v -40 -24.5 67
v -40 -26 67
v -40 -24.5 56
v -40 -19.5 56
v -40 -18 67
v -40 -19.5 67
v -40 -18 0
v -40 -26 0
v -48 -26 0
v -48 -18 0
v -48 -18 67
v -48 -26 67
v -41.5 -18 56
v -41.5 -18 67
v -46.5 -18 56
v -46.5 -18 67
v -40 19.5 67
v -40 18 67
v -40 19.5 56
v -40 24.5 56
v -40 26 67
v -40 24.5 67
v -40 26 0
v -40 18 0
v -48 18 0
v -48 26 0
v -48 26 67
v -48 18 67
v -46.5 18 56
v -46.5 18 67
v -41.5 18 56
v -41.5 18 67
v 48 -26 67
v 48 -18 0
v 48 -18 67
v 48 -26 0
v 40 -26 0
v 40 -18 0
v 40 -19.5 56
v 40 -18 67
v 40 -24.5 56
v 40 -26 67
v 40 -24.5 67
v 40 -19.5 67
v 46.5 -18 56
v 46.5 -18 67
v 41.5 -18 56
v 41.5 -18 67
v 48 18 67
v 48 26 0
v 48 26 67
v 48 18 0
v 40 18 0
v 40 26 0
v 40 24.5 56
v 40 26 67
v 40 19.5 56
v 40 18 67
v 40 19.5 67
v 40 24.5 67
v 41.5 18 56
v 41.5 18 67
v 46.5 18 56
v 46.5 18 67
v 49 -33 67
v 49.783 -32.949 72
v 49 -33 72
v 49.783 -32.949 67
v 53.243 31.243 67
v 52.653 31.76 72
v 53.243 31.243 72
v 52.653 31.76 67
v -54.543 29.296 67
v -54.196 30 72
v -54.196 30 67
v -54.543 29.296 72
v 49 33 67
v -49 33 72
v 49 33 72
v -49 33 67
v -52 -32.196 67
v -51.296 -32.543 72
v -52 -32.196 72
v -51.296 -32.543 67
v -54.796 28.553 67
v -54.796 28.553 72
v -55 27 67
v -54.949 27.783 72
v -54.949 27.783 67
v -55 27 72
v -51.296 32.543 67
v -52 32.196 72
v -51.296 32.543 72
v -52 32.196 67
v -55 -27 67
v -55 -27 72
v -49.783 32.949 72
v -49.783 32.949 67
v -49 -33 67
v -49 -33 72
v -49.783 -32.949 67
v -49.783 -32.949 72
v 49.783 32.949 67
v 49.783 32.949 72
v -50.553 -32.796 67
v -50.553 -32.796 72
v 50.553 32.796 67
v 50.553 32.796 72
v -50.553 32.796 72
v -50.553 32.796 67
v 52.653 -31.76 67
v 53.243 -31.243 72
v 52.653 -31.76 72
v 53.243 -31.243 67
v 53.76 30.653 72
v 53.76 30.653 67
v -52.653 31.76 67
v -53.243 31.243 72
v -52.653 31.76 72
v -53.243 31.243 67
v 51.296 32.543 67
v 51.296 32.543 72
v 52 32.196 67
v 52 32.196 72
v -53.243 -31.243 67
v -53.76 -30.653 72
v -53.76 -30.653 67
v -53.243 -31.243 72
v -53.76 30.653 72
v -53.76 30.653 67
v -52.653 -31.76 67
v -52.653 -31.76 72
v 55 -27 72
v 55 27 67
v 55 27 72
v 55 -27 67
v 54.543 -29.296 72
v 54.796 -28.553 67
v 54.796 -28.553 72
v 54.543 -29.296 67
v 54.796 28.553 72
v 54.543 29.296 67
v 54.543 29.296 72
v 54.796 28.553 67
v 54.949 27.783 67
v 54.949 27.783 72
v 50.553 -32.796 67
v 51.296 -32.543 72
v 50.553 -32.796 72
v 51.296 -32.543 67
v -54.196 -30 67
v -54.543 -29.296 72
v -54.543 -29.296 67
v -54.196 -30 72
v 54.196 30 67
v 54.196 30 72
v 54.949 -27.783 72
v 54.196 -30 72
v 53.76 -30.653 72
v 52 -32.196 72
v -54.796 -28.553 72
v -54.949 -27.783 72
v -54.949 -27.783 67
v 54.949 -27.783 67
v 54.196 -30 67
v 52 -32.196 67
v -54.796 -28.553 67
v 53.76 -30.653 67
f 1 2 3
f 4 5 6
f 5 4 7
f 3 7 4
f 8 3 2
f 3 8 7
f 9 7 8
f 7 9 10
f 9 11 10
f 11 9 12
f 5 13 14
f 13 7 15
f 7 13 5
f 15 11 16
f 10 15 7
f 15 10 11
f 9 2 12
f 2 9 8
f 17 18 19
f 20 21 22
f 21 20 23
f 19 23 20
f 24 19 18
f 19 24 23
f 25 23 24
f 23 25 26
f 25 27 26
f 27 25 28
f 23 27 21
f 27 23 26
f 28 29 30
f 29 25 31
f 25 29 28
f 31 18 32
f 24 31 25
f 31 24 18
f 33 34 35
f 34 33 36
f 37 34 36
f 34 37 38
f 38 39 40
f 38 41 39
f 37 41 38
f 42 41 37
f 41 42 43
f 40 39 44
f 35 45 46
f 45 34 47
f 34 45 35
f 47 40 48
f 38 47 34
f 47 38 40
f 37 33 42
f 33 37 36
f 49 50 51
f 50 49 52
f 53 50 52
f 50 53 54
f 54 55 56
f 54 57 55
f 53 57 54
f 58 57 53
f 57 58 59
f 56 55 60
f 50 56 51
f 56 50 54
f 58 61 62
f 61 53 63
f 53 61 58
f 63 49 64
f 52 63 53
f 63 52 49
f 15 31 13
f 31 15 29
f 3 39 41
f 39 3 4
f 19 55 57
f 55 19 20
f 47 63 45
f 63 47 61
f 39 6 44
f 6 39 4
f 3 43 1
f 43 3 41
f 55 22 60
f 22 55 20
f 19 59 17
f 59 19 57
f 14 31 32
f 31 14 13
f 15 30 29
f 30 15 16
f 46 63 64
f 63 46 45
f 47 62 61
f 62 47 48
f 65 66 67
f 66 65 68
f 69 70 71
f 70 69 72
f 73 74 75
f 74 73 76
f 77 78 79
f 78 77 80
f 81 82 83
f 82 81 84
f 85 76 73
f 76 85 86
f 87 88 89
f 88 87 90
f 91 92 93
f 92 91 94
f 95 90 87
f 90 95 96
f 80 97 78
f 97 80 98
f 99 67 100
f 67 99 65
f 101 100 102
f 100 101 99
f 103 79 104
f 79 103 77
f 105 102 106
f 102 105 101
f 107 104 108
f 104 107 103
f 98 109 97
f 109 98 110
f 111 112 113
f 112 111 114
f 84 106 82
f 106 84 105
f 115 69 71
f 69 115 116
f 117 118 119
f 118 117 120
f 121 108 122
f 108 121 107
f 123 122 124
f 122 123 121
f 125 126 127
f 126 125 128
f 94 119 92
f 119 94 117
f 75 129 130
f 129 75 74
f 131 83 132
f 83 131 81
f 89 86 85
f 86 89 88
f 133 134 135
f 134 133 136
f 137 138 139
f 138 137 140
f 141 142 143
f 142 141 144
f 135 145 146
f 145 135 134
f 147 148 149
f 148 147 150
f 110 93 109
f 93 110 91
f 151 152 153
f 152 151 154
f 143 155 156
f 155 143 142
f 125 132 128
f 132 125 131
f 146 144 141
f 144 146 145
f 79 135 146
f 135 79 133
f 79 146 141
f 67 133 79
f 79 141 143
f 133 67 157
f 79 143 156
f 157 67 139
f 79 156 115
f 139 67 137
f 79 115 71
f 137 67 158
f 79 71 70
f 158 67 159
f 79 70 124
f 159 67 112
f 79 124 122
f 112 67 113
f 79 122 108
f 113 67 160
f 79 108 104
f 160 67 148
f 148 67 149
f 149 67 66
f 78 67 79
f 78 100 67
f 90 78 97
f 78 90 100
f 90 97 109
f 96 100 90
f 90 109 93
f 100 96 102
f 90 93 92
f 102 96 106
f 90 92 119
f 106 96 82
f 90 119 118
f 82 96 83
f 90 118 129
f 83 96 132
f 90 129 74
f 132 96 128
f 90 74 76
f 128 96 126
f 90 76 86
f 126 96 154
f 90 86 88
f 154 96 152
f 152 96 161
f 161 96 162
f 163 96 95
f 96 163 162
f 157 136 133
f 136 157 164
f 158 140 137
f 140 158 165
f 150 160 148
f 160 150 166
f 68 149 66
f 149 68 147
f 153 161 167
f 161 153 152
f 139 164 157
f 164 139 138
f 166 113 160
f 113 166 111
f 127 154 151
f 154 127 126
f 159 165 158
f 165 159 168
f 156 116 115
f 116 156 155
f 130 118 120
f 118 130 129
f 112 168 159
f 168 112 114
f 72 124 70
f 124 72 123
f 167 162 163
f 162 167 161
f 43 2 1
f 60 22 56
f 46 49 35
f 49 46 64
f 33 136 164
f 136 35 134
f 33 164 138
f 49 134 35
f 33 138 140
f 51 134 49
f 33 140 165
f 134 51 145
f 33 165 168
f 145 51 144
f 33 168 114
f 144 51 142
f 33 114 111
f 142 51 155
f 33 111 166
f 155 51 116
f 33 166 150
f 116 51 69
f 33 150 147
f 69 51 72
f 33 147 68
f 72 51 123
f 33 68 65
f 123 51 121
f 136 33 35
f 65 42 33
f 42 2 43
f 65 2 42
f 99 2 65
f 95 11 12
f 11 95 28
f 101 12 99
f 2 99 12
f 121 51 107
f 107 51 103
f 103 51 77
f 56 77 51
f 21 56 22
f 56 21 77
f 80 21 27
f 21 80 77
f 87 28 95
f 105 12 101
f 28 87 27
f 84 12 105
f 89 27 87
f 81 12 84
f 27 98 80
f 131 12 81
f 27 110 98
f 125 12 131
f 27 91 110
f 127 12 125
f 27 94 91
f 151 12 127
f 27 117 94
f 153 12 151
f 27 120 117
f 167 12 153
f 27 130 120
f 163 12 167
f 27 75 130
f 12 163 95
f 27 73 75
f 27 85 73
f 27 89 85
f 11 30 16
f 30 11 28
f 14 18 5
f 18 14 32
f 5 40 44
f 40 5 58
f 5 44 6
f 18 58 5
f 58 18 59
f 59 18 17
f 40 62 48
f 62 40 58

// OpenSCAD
// 迷你四脚桌（默认约 1:10 比例）
// 所有尺寸单位：毫米（mm）。可以直接修改这些参数后重新导出 STL。
$fn = 48;

TABLE_WIDTH = 110;
TABLE_DEPTH = 66;
TABLE_HEIGHT = 72;
TOP_THICKNESS = 5;
TOP_CORNER_RADIUS = 6;
LEG_SIZE = 8;
LEG_INSET = 7;             // 桌腿中心到顶板边缘的额外退让距离（与半腿宽叠加）
APRON_HEIGHT = 11;
APRON_THICKNESS = 5;

module rounded_plate(w, d, thickness, r) {
    linear_extrude(height = thickness)
        offset(r = r)
            square([w - 2*r, d - 2*r], center = true);
}

module miniature_table() {
    top_bottom_z = TABLE_HEIGHT - TOP_THICKNESS;
    leg_x = TABLE_WIDTH/2 - LEG_INSET - LEG_SIZE/2;
    leg_y = TABLE_DEPTH/2 - LEG_INSET - LEG_SIZE/2;
    union() {
        // 圆角桌面
        translate([0, 0, top_bottom_z])
            rounded_plate(TABLE_WIDTH, TABLE_DEPTH, TOP_THICKNESS, TOP_CORNER_RADIUS);
        // 四条桌腿，伸入桌板 2 mm 以保证布尔合并稳定
        for (x = [-leg_x, leg_x], y = [-leg_y, leg_y])
            translate([x, y, (top_bottom_z + 2)/2])
                cube([LEG_SIZE, LEG_SIZE, top_bottom_z + 2], center = true);
        // 前后围板（与腿柱重叠，增强模型结构）
        for (y = [-leg_y, leg_y])
            translate([0, y, top_bottom_z - APRON_HEIGHT/2 + 1])
                cube([2*leg_x + 2, APRON_THICKNESS, APRON_HEIGHT + 2], center = true);
        // 左右围板
        for (x = [-leg_x, leg_x])
            translate([x, 0, top_bottom_z - APRON_HEIGHT/2 + 1])
                cube([APRON_THICKNESS, 2*leg_y + 2, APRON_HEIGHT + 2], center = true);
    }
}

miniature_table();
